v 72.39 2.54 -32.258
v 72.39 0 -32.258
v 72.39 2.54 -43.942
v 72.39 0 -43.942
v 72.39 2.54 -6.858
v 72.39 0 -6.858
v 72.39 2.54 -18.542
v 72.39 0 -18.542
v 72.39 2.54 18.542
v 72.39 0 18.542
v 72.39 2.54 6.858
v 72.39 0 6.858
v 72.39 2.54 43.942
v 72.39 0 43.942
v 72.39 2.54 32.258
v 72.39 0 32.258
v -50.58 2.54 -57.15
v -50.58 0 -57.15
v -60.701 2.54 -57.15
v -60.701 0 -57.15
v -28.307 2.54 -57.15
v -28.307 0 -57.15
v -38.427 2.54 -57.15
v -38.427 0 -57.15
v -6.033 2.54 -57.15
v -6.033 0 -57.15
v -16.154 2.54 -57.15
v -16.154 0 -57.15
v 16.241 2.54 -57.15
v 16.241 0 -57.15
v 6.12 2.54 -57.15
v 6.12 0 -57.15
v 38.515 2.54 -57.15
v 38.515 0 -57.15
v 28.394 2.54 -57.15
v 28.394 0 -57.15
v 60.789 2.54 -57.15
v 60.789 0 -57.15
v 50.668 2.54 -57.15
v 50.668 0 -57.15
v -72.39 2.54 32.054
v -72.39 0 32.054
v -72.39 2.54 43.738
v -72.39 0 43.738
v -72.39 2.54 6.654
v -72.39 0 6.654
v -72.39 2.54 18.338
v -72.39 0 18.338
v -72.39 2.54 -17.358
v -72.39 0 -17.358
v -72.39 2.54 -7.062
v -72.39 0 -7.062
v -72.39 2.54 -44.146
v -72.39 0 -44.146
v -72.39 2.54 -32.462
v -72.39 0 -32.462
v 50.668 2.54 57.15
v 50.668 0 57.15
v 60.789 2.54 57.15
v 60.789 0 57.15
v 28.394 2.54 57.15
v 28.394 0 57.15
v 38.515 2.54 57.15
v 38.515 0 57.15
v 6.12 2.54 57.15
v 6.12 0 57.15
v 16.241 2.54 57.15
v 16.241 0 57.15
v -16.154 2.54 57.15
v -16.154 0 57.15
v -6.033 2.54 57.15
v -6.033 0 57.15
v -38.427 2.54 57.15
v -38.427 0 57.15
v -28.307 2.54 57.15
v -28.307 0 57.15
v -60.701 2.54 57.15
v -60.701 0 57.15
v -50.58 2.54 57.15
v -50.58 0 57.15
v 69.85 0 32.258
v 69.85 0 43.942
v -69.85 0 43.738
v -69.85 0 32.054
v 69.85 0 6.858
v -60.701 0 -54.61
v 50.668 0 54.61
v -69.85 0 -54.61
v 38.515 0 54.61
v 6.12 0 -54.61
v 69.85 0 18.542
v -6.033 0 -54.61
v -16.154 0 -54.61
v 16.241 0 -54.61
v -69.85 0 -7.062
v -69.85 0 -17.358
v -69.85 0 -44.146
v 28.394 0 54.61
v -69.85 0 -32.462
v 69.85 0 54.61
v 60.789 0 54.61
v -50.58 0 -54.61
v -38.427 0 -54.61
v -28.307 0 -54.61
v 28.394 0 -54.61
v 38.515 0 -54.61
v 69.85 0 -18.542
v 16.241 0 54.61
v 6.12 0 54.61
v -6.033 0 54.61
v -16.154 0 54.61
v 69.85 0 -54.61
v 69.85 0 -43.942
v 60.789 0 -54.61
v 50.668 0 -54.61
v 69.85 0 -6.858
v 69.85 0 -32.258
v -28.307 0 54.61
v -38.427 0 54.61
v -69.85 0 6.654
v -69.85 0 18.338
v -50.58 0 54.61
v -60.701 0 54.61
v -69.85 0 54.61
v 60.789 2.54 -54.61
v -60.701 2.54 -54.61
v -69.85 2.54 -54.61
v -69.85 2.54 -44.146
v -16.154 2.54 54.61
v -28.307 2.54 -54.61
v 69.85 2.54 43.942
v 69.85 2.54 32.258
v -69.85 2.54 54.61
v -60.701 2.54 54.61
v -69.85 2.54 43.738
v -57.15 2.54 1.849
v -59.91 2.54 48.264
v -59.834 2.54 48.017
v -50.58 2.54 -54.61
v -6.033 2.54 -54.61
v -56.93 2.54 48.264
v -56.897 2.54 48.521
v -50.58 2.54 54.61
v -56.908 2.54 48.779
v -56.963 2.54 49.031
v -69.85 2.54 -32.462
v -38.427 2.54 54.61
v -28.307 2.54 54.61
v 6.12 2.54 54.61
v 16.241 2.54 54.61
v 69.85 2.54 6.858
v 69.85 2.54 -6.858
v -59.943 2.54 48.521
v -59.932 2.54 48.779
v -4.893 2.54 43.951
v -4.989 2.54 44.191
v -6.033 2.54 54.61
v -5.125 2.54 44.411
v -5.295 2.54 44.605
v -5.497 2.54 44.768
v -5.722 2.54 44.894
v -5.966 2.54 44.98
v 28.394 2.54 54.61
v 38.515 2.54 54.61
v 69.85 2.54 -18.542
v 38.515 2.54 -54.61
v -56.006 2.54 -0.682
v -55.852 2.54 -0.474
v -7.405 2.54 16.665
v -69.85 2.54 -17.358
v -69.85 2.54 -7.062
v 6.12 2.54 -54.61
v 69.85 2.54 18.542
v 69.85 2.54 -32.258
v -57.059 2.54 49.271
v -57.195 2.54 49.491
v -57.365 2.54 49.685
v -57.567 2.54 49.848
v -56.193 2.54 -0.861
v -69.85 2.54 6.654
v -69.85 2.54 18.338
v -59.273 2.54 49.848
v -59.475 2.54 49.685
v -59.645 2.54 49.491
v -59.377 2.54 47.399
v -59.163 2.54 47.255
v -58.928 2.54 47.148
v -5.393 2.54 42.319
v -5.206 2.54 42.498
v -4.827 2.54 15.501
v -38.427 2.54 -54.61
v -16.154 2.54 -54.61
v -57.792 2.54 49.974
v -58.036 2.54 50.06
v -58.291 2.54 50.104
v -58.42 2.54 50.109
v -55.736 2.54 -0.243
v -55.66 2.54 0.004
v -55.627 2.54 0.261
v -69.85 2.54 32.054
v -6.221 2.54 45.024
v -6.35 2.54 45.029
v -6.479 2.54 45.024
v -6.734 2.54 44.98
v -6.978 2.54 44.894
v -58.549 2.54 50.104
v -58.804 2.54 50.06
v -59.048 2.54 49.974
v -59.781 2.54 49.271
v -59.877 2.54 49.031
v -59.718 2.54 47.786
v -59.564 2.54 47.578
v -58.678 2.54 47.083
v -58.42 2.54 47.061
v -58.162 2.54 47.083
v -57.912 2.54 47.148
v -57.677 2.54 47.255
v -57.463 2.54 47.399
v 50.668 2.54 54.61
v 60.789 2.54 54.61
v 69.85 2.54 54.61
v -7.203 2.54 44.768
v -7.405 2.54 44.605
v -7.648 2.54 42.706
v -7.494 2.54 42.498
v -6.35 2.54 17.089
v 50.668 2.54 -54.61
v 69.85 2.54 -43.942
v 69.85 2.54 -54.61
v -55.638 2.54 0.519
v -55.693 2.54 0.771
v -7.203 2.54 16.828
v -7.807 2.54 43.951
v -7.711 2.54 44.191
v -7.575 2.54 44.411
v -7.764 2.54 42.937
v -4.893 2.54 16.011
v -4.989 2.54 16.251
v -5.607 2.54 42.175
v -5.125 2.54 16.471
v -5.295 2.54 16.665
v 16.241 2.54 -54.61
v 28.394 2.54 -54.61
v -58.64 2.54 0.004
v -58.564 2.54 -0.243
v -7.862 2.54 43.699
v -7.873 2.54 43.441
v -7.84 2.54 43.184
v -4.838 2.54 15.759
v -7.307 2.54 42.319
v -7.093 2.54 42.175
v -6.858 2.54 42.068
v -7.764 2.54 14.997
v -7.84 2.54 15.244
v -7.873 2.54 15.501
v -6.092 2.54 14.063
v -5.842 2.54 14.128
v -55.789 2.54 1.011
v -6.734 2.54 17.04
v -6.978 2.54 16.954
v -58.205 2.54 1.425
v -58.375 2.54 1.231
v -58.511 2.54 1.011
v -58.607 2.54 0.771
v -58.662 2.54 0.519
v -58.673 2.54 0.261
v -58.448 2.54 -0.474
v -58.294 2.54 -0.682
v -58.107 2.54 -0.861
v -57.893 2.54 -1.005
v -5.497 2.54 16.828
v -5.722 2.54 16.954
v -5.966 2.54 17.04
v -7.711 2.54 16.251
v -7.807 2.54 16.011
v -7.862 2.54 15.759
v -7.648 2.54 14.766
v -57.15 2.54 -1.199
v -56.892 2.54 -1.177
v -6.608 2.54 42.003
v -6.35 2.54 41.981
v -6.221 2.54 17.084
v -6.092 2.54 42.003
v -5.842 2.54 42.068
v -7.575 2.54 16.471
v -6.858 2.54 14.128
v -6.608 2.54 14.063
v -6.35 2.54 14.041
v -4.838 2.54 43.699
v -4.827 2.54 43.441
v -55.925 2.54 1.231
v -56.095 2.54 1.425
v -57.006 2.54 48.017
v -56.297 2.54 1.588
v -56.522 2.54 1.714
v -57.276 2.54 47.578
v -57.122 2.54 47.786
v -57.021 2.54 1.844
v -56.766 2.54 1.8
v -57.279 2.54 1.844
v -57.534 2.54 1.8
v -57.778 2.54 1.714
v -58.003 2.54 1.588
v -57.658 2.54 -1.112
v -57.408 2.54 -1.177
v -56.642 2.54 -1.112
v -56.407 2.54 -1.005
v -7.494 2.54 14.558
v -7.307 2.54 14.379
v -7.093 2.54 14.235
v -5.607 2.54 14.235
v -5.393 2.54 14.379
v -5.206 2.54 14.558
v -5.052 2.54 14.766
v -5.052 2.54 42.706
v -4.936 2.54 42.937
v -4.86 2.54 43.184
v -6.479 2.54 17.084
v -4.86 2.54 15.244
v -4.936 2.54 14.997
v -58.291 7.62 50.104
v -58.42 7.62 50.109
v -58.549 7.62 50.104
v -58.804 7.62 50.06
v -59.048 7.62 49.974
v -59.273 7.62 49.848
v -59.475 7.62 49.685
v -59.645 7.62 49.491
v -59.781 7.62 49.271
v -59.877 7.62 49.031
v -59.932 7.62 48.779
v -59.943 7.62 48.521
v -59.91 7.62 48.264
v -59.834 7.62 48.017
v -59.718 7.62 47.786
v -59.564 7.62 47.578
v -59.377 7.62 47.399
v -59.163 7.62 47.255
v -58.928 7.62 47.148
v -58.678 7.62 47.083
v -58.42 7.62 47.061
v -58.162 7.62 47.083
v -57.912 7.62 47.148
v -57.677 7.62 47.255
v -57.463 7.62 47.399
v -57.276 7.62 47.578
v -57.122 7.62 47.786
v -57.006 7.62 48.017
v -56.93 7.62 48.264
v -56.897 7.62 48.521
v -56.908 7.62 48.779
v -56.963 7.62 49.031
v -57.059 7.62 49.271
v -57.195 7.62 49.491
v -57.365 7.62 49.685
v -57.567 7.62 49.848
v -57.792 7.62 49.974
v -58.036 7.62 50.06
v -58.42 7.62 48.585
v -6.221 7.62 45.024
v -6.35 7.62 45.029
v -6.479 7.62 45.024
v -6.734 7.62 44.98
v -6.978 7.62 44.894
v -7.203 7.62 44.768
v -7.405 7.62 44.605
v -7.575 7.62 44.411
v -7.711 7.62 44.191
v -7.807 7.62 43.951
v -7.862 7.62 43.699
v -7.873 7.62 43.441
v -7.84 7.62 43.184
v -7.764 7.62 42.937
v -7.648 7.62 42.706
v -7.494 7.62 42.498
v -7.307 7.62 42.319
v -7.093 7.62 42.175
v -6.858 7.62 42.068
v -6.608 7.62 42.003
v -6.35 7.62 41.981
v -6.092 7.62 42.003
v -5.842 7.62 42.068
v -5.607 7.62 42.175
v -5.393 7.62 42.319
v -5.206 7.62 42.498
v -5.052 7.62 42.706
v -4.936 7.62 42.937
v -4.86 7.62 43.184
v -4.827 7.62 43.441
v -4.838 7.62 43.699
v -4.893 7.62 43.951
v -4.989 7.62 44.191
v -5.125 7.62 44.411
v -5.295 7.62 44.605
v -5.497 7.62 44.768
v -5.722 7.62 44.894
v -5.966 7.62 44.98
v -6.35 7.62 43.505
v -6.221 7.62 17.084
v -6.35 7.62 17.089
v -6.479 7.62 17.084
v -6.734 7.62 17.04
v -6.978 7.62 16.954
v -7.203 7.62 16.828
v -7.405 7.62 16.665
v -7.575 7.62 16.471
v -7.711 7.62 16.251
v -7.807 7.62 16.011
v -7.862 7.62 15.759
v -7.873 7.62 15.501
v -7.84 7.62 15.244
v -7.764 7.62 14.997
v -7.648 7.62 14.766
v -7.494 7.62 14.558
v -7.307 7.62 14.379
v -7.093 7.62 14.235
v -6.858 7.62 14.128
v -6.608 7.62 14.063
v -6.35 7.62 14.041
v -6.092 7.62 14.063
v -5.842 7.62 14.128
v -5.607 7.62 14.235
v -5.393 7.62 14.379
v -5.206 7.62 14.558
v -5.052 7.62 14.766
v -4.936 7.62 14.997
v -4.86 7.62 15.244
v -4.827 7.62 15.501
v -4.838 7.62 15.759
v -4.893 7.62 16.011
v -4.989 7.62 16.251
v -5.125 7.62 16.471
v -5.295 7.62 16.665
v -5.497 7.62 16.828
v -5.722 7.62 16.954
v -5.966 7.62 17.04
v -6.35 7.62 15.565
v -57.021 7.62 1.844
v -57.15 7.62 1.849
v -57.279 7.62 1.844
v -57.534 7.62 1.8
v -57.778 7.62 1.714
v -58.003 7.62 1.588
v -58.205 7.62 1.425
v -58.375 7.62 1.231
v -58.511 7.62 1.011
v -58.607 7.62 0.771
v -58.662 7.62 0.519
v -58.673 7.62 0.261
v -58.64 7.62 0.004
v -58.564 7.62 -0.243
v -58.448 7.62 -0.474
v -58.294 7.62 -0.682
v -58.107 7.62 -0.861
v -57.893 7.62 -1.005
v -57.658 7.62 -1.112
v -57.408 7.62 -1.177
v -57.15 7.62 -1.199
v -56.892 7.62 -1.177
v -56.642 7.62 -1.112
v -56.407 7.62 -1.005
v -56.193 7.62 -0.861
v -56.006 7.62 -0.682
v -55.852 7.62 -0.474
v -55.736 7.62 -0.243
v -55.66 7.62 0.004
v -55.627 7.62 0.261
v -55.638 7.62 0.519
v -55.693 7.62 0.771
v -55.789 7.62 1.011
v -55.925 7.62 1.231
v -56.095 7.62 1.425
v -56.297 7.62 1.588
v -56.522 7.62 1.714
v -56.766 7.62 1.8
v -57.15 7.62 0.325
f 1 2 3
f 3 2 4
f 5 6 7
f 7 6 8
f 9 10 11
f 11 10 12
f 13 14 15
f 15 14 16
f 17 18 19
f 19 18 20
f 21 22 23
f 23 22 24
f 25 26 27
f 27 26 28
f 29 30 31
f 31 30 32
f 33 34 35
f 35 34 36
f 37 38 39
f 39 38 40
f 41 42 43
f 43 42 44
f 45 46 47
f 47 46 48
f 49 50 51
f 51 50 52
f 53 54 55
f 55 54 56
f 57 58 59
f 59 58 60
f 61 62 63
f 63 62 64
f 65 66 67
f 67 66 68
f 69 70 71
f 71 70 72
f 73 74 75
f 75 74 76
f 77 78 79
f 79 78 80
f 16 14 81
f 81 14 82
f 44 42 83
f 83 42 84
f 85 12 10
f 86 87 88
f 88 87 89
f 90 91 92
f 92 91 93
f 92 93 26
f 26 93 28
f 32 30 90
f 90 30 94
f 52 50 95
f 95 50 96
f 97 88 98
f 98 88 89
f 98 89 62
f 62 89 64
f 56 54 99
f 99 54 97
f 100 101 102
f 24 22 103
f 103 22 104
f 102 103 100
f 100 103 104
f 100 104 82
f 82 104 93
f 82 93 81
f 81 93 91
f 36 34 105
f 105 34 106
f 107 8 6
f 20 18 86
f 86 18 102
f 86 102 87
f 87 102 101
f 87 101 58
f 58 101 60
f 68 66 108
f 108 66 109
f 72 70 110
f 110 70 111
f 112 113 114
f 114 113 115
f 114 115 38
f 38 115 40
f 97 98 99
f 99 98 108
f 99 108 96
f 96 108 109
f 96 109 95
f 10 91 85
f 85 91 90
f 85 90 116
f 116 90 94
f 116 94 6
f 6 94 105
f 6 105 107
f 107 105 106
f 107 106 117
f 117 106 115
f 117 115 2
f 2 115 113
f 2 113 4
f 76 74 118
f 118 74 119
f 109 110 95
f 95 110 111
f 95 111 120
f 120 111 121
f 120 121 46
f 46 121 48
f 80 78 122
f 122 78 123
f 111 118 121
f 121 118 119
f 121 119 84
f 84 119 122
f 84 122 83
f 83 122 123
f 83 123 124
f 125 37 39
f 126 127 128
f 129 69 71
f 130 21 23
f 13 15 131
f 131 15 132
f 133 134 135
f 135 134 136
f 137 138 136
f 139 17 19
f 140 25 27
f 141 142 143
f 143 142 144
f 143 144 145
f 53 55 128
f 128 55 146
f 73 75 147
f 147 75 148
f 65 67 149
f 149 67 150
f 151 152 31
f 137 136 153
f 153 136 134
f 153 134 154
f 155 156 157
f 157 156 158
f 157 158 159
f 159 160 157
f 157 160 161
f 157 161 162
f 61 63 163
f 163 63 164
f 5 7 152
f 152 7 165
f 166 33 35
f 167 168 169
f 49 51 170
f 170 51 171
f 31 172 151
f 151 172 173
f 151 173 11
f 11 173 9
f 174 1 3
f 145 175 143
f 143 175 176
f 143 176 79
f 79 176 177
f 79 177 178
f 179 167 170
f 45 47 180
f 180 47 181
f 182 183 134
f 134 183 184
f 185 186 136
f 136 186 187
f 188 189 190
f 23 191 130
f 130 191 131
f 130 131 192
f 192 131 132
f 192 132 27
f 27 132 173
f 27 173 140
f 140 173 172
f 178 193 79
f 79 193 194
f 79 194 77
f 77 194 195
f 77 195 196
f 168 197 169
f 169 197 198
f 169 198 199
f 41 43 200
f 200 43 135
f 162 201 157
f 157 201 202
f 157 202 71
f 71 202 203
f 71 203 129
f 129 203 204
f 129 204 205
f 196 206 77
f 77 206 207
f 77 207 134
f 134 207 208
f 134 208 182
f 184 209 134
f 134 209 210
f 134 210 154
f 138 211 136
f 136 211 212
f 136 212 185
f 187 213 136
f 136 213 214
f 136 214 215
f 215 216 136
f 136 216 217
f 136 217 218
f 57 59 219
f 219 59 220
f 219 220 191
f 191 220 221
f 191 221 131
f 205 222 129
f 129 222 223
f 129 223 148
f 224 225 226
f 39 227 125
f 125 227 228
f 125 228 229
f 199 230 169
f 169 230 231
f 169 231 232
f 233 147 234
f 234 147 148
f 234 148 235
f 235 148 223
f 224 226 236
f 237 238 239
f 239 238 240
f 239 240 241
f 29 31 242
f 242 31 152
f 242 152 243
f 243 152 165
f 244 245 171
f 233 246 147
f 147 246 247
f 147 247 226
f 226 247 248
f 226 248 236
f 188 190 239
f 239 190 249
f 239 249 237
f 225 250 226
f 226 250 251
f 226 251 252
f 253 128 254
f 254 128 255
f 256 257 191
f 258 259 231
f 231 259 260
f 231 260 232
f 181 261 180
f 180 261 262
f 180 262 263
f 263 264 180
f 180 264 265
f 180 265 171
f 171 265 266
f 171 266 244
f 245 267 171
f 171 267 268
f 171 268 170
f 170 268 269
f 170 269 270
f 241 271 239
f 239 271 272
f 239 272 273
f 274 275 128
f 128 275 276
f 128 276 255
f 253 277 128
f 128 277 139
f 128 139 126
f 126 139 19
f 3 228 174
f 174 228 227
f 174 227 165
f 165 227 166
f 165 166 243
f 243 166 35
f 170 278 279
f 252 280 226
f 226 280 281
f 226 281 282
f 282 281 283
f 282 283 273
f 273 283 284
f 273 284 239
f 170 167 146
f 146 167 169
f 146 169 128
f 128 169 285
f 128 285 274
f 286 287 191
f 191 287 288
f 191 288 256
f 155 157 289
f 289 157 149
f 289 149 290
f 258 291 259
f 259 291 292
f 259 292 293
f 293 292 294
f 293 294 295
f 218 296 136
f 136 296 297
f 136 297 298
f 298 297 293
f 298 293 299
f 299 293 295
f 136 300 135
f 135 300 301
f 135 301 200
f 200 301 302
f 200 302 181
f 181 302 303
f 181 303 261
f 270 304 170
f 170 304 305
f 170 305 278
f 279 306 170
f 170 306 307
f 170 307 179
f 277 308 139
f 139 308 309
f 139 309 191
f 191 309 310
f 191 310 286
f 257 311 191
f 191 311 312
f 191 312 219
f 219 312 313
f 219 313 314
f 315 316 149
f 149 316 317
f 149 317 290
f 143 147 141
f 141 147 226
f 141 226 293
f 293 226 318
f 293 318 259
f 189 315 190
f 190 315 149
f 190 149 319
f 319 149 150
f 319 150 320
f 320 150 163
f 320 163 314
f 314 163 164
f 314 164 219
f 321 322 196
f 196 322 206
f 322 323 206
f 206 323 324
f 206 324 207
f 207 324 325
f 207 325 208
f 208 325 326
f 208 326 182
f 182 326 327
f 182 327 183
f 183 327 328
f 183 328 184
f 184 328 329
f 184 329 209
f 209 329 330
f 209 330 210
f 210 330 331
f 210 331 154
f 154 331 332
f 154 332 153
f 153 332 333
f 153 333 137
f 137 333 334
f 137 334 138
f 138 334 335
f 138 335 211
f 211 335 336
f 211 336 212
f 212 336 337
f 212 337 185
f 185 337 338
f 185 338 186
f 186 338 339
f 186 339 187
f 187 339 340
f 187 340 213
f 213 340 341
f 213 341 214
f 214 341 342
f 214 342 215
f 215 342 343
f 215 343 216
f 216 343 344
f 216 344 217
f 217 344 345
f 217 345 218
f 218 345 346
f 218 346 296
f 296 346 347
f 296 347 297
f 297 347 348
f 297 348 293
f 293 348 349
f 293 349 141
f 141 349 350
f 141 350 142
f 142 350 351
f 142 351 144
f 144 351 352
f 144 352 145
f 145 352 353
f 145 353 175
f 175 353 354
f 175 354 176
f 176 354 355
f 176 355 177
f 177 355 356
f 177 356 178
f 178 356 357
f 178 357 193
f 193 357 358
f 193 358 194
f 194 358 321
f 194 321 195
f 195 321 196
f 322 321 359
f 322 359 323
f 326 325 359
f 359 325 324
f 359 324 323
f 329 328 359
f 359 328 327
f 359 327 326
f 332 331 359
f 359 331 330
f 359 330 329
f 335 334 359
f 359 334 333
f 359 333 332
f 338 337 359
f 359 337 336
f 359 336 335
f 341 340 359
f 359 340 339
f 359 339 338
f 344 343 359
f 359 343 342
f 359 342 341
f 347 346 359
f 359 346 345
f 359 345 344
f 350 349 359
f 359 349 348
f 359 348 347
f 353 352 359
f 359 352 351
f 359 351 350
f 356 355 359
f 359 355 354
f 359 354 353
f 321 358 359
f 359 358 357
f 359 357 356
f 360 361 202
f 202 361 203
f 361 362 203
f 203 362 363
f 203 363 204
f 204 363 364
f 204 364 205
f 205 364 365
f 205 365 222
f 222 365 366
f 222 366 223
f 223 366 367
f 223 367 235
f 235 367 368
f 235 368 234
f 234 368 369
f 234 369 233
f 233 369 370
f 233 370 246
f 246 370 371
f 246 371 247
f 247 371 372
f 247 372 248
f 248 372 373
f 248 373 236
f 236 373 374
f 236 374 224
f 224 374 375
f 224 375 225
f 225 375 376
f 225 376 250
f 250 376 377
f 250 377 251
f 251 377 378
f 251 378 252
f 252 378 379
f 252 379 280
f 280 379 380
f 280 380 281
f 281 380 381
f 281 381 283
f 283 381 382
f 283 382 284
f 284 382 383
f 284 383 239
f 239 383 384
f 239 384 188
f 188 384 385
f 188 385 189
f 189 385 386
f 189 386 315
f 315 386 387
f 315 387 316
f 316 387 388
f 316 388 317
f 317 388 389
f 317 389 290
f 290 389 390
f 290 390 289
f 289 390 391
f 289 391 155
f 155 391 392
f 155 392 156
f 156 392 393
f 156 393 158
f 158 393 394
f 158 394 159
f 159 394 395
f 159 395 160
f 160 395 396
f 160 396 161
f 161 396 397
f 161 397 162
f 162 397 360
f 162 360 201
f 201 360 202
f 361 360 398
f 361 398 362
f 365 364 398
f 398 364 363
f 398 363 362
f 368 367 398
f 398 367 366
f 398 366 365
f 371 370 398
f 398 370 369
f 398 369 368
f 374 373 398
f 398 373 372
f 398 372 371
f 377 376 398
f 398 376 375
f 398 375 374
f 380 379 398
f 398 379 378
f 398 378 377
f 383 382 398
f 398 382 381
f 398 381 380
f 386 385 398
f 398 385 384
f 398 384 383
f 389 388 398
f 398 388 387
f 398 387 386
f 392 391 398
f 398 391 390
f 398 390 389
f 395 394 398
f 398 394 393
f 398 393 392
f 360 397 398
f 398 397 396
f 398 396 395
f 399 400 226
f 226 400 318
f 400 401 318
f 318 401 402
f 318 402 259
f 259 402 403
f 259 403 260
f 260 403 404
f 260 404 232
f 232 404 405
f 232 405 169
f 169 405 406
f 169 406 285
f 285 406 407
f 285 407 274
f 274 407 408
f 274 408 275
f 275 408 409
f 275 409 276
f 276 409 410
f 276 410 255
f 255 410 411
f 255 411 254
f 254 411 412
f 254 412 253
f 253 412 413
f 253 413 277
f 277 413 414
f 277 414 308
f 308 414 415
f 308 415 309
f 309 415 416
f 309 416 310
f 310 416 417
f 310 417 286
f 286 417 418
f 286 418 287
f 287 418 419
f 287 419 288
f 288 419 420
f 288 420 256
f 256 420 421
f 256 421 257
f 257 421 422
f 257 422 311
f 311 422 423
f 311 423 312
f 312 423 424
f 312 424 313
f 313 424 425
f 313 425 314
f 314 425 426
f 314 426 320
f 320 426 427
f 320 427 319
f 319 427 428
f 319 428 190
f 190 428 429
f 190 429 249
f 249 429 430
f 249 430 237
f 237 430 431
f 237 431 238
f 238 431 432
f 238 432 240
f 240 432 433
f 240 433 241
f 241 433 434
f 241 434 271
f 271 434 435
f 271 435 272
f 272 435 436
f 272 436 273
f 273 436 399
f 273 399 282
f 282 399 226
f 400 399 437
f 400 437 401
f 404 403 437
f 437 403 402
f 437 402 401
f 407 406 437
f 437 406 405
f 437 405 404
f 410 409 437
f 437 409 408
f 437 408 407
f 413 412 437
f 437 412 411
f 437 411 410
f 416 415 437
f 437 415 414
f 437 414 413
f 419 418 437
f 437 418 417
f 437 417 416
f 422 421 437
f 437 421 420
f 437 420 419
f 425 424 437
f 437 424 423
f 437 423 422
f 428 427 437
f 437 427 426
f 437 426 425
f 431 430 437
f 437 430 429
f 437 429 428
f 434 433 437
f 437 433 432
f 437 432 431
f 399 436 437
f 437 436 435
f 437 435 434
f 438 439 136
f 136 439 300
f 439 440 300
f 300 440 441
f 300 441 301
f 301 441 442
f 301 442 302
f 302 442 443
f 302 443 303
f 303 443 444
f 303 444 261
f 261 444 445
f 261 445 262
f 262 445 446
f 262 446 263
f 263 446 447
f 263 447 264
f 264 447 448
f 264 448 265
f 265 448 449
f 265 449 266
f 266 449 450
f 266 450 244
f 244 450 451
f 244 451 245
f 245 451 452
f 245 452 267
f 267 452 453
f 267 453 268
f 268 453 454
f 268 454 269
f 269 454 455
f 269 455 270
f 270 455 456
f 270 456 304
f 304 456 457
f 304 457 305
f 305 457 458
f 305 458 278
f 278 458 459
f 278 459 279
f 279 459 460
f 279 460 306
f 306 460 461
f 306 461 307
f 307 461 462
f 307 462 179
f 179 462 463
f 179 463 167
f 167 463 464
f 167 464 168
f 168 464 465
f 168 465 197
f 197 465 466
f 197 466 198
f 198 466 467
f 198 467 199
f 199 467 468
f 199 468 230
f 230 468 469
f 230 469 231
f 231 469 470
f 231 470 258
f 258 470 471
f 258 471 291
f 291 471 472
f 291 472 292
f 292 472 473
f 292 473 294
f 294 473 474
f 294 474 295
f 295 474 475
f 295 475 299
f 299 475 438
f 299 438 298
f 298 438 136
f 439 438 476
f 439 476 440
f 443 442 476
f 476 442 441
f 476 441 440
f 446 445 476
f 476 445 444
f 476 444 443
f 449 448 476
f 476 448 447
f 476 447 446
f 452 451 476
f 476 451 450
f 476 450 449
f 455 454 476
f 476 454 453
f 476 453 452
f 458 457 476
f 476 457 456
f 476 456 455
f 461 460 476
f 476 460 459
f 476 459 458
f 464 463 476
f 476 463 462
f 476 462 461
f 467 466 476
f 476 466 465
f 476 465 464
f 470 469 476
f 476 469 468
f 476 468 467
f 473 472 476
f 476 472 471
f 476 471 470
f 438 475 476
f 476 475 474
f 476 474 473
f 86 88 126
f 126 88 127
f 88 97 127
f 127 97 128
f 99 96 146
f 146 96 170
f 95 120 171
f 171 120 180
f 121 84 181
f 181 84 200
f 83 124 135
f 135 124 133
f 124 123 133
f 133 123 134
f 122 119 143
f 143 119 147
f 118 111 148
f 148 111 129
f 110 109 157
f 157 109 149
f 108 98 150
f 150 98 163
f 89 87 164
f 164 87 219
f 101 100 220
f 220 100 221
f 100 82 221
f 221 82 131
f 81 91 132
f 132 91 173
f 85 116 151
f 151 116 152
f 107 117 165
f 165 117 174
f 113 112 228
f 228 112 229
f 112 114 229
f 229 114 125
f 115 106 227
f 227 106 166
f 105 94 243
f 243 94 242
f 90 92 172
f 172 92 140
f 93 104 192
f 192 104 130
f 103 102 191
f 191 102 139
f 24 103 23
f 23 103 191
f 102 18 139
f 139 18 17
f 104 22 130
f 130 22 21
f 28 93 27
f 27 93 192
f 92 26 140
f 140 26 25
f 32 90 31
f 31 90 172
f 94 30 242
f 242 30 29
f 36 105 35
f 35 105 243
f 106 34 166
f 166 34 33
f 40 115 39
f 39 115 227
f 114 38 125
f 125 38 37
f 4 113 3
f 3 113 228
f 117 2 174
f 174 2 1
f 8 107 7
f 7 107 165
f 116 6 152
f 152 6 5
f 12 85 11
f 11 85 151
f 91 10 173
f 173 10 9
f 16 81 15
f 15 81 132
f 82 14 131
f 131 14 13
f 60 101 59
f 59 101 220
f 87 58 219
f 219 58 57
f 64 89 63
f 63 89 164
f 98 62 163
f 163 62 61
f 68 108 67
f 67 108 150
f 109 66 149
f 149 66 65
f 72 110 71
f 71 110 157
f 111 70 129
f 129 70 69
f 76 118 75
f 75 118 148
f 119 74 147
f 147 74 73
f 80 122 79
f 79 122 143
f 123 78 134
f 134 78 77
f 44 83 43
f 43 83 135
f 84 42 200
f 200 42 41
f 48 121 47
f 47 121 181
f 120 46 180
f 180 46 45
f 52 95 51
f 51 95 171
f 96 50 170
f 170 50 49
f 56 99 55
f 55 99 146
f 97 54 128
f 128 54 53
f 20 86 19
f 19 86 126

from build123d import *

# Parameters (mm, degrees)
SKETCH1_W           = 144.78
SKETCH1_H           = 114.3
BOSS_EXTRUDE1_DEPTH = 63.5
SKETCH2_W           = 144.78
SKETCH2_H           = 114.3
CUT_EXTRUDE1_DEPTH  = 60.96
SKETCH3_R           = 1.524
BOSS_EXTRUDE2_DEPTH = 5.08
SKETCH4_OUTSIDE_W   = 183.704
SKETCH4_OUTSIDE_H   = 153.224
CUT_EXTRUDE2_DEPTH  = 2.54
SKETCH6_OUTSIDE_W   = 183.704
SKETCH6_OUTSIDE_H   = 153.224
CUT_EXTRUDE4_DEPTH  = 2.54


with BuildPart() as part:
    # Sketch1 → Boss-Extrude1 (new body)
    with BuildSketch(Plane(origin=(0, 0, 0), x_dir=(1, 0, 0), z_dir=(0, 1, 0))):
        Rectangle(SKETCH1_W, SKETCH1_H)
    extrude(amount=BOSS_EXTRUDE1_DEPTH)

    # Sketch2 → Cut-Extrude1 (cut)
    with BuildSketch(Plane(origin=(0, 63.5, 0), x_dir=(1, 0, 0), z_dir=(0, 1, 0))):
        Rectangle(SKETCH2_W, SKETCH2_H)
    extrude(amount=-CUT_EXTRUDE1_DEPTH, mode=Mode.SUBTRACT)

    # Sketch3 → Boss-Extrude2 (add)
    with BuildSketch(Plane(origin=(0, 2.54, 0), x_dir=(1, 0, 0), z_dir=(0, 1, 0))):
        with Locations(Location((-58.42, -48.585184876, 0), (0, 0, 270))):
            Circle(SKETCH3_R)
        with Locations(Location((-6.35, -43.505184876, 0), (0, 0, 270))):
            Circle(SKETCH3_R)
        with Locations(Location((-6.35, -15.565184876, 0), (0, 0, 270))):
            Circle(SKETCH3_R)
        with Locations(Location((-57.15, -0.325184876, 0), (0, 0, 270))):
            Circle(SKETCH3_R)
    extrude(amount=BOSS_EXTRUDE2_DEPTH)

    # Sketch4 outside → Cut-Extrude2 (cut)
    with BuildSketch(Plane(origin=(0, 2.54, 0), x_dir=(1, 0, 0), z_dir=(0, 1, 0))):
        Rectangle(SKETCH4_OUTSIDE_W, SKETCH4_OUTSIDE_H)
        Polygon((69.85, 54.61), (61.296876225, 54.61), (61.296876225, 57.15), (50.159953148, 57.15), (50.159953148, 54.61), (39.023030071, 54.61), (39.023030071, 57.15), (27.886106994, 57.15), (27.886106994, 54.61), (16.749183917, 54.61), (16.749183917, 57.15), (5.61226084, 57.15), (5.61226084, 54.61), (-5.524662236, 54.61), (-5.524662236, 57.15), (-16.661585313, 57.15), (-16.661585313, 54.61), (-27.79850839, 54.61), (-27.79850839, 57.15), (-38.935431467, 57.15), (-38.935431467, 54.61), (-50.072354544, 54.61), (-50.072354544, 57.15), (-61.209277621, 57.15), (-61.209277621, 54.61), (-69.85, 54.61), (-69.85, 44.653580836), (-72.39, 44.653580836), (-72.39, 31.953580836), (-69.85, 31.953580836), (-69.85, 19.253580836), (-72.39, 19.253580836), (-72.39, 6.553580836), (-69.85, 6.553580836), (-69.85, -6.146419164), (-72.39, -6.146419164), (-72.39, -18.846419164), (-69.85, -18.846419164), (-69.85, -31.546419164), (-72.39, -31.546419164), (-72.39, -44.246419164), (-69.85, -44.246419164), (-69.85, -54.61), (-61.209277621, -54.61), (-61.209277621, -57.15), (-50.072354544, -57.15), (-50.072354544, -54.61), (-38.935431467, -54.61), (-38.935431467, -57.15), (-27.79850839, -57.15), (-27.79850839, -54.61), (-16.661585313, -54.61), (-16.661585313, -57.15), (-5.524662236, -57.15), (-5.524662236, -54.61), (5.61226084, -54.61), (5.61226084, -57.15), (16.749183917, -57.15), (16.749183917, -54.61), (27.886106994, -54.61), (27.886106994, -57.15), (39.023030071, -57.15), (39.023030071, -54.61), (50.159953148, -54.61), (50.159953148, -57.15), (61.296876225, -57.15), (61.296876225, -54.61), (69.85, -54.61), (69.85, -44.45), (72.39, -44.45), (72.39, -31.75), (69.85, -31.75), (69.85, -19.05), (72.39, -19.05), (72.39, -6.35), (69.85, -6.35), (69.85, 6.35), (72.39, 6.35), (72.39, 19.05), (69.85, 19.05), (69.85, 31.75), (72.39, 31.75), (72.39, 44.45), (69.85, 44.45), align=None, mode=Mode.SUBTRACT)
    extrude(amount=-CUT_EXTRUDE2_DEPTH, mode=Mode.SUBTRACT)

    # Sketch6 outside → Cut-Extrude4 (cut)
    with BuildSketch(Plane(origin=(0, 2.54, 0), x_dir=(1, 0, 0), z_dir=(0, 1, 0))):
        Rectangle(SKETCH6_OUTSIDE_W, SKETCH6_OUTSIDE_H)
        Polygon((-69.85, 54.61), (-60.701277621, 54.61), (-60.701277621, 57.15), (-50.580354544, 57.15), (-50.580354544, 54.61), (-38.427431467, 54.61), (-38.427431467, 57.15), (-28.30650839, 57.15), (-28.30650839, 54.61), (-16.153585313, 54.61), (-16.153585313, 57.15), (-6.032662236, 57.15), (-6.032662236, 54.61), (6.12026084, 54.61), (6.12026084, 57.15), (16.241183917, 57.15), (16.241183917, 54.61), (28.394106994, 54.61), (28.394106994, 57.15), (38.515030071, 57.15), (38.515030071, 54.61), (50.667953148, 54.61), (50.667953148, 57.15), (60.788876225, 57.15), (60.788876225, 54.61), (69.85, 54.61), (69.85, 43.942), (72.39, 43.942), (72.39, 32.258), (69.85, 32.258), (69.85, 18.542), (72.39, 18.542), (72.39, 6.858), (69.85, 6.858), (69.85, -6.858), (72.39, -6.858), (72.39, -18.542), (69.85, -18.542), (69.85, -32.258), (72.39, -32.258), (72.39, -43.942), (69.85, -43.942), (69.85, -54.61), (60.788876225, -54.61), (60.788876225, -57.15), (50.667953148, -57.15), (50.667953148, -54.61), (38.515030071, -54.61), (38.515030071, -57.15), (28.394106994, -57.15), (28.394106994, -54.61), (16.241183917, -54.61), (16.241183917, -57.15), (6.12026084, -57.15), (6.12026084, -54.61), (-6.032662236, -54.61), (-6.032662236, -57.15), (-16.153585313, -57.15), (-16.153585313, -54.61), (-28.30650839, -54.61), (-28.30650839, -57.15), (-38.427431467, -57.15), (-38.427431467, -54.61), (-50.580354544, -54.61), (-50.580354544, -57.15), (-60.701277621, -57.15), (-60.701277621, -54.61), (-69.85, -54.61), (-69.85, -43.738419164), (-72.39, -43.738419164), (-72.39, -32.054419164), (-69.85, -32.054419164), (-69.85, -18.338419164), (-72.39, -18.338419164), (-72.39, -6.654419164), (-69.85, -6.654419164), (-69.85, 7.061580836), (-72.39, 7.061580836), (-72.39, 17.357767978), (-69.85, 17.357767978), (-69.85, 32.461580836), (-72.39, 32.461580836), (-72.39, 44.145580836), (-69.85, 44.145580836), align=None, mode=Mode.SUBTRACT)
    extrude(amount=-CUT_EXTRUDE4_DEPTH, mode=Mode.SUBTRACT)


solid = part.part
